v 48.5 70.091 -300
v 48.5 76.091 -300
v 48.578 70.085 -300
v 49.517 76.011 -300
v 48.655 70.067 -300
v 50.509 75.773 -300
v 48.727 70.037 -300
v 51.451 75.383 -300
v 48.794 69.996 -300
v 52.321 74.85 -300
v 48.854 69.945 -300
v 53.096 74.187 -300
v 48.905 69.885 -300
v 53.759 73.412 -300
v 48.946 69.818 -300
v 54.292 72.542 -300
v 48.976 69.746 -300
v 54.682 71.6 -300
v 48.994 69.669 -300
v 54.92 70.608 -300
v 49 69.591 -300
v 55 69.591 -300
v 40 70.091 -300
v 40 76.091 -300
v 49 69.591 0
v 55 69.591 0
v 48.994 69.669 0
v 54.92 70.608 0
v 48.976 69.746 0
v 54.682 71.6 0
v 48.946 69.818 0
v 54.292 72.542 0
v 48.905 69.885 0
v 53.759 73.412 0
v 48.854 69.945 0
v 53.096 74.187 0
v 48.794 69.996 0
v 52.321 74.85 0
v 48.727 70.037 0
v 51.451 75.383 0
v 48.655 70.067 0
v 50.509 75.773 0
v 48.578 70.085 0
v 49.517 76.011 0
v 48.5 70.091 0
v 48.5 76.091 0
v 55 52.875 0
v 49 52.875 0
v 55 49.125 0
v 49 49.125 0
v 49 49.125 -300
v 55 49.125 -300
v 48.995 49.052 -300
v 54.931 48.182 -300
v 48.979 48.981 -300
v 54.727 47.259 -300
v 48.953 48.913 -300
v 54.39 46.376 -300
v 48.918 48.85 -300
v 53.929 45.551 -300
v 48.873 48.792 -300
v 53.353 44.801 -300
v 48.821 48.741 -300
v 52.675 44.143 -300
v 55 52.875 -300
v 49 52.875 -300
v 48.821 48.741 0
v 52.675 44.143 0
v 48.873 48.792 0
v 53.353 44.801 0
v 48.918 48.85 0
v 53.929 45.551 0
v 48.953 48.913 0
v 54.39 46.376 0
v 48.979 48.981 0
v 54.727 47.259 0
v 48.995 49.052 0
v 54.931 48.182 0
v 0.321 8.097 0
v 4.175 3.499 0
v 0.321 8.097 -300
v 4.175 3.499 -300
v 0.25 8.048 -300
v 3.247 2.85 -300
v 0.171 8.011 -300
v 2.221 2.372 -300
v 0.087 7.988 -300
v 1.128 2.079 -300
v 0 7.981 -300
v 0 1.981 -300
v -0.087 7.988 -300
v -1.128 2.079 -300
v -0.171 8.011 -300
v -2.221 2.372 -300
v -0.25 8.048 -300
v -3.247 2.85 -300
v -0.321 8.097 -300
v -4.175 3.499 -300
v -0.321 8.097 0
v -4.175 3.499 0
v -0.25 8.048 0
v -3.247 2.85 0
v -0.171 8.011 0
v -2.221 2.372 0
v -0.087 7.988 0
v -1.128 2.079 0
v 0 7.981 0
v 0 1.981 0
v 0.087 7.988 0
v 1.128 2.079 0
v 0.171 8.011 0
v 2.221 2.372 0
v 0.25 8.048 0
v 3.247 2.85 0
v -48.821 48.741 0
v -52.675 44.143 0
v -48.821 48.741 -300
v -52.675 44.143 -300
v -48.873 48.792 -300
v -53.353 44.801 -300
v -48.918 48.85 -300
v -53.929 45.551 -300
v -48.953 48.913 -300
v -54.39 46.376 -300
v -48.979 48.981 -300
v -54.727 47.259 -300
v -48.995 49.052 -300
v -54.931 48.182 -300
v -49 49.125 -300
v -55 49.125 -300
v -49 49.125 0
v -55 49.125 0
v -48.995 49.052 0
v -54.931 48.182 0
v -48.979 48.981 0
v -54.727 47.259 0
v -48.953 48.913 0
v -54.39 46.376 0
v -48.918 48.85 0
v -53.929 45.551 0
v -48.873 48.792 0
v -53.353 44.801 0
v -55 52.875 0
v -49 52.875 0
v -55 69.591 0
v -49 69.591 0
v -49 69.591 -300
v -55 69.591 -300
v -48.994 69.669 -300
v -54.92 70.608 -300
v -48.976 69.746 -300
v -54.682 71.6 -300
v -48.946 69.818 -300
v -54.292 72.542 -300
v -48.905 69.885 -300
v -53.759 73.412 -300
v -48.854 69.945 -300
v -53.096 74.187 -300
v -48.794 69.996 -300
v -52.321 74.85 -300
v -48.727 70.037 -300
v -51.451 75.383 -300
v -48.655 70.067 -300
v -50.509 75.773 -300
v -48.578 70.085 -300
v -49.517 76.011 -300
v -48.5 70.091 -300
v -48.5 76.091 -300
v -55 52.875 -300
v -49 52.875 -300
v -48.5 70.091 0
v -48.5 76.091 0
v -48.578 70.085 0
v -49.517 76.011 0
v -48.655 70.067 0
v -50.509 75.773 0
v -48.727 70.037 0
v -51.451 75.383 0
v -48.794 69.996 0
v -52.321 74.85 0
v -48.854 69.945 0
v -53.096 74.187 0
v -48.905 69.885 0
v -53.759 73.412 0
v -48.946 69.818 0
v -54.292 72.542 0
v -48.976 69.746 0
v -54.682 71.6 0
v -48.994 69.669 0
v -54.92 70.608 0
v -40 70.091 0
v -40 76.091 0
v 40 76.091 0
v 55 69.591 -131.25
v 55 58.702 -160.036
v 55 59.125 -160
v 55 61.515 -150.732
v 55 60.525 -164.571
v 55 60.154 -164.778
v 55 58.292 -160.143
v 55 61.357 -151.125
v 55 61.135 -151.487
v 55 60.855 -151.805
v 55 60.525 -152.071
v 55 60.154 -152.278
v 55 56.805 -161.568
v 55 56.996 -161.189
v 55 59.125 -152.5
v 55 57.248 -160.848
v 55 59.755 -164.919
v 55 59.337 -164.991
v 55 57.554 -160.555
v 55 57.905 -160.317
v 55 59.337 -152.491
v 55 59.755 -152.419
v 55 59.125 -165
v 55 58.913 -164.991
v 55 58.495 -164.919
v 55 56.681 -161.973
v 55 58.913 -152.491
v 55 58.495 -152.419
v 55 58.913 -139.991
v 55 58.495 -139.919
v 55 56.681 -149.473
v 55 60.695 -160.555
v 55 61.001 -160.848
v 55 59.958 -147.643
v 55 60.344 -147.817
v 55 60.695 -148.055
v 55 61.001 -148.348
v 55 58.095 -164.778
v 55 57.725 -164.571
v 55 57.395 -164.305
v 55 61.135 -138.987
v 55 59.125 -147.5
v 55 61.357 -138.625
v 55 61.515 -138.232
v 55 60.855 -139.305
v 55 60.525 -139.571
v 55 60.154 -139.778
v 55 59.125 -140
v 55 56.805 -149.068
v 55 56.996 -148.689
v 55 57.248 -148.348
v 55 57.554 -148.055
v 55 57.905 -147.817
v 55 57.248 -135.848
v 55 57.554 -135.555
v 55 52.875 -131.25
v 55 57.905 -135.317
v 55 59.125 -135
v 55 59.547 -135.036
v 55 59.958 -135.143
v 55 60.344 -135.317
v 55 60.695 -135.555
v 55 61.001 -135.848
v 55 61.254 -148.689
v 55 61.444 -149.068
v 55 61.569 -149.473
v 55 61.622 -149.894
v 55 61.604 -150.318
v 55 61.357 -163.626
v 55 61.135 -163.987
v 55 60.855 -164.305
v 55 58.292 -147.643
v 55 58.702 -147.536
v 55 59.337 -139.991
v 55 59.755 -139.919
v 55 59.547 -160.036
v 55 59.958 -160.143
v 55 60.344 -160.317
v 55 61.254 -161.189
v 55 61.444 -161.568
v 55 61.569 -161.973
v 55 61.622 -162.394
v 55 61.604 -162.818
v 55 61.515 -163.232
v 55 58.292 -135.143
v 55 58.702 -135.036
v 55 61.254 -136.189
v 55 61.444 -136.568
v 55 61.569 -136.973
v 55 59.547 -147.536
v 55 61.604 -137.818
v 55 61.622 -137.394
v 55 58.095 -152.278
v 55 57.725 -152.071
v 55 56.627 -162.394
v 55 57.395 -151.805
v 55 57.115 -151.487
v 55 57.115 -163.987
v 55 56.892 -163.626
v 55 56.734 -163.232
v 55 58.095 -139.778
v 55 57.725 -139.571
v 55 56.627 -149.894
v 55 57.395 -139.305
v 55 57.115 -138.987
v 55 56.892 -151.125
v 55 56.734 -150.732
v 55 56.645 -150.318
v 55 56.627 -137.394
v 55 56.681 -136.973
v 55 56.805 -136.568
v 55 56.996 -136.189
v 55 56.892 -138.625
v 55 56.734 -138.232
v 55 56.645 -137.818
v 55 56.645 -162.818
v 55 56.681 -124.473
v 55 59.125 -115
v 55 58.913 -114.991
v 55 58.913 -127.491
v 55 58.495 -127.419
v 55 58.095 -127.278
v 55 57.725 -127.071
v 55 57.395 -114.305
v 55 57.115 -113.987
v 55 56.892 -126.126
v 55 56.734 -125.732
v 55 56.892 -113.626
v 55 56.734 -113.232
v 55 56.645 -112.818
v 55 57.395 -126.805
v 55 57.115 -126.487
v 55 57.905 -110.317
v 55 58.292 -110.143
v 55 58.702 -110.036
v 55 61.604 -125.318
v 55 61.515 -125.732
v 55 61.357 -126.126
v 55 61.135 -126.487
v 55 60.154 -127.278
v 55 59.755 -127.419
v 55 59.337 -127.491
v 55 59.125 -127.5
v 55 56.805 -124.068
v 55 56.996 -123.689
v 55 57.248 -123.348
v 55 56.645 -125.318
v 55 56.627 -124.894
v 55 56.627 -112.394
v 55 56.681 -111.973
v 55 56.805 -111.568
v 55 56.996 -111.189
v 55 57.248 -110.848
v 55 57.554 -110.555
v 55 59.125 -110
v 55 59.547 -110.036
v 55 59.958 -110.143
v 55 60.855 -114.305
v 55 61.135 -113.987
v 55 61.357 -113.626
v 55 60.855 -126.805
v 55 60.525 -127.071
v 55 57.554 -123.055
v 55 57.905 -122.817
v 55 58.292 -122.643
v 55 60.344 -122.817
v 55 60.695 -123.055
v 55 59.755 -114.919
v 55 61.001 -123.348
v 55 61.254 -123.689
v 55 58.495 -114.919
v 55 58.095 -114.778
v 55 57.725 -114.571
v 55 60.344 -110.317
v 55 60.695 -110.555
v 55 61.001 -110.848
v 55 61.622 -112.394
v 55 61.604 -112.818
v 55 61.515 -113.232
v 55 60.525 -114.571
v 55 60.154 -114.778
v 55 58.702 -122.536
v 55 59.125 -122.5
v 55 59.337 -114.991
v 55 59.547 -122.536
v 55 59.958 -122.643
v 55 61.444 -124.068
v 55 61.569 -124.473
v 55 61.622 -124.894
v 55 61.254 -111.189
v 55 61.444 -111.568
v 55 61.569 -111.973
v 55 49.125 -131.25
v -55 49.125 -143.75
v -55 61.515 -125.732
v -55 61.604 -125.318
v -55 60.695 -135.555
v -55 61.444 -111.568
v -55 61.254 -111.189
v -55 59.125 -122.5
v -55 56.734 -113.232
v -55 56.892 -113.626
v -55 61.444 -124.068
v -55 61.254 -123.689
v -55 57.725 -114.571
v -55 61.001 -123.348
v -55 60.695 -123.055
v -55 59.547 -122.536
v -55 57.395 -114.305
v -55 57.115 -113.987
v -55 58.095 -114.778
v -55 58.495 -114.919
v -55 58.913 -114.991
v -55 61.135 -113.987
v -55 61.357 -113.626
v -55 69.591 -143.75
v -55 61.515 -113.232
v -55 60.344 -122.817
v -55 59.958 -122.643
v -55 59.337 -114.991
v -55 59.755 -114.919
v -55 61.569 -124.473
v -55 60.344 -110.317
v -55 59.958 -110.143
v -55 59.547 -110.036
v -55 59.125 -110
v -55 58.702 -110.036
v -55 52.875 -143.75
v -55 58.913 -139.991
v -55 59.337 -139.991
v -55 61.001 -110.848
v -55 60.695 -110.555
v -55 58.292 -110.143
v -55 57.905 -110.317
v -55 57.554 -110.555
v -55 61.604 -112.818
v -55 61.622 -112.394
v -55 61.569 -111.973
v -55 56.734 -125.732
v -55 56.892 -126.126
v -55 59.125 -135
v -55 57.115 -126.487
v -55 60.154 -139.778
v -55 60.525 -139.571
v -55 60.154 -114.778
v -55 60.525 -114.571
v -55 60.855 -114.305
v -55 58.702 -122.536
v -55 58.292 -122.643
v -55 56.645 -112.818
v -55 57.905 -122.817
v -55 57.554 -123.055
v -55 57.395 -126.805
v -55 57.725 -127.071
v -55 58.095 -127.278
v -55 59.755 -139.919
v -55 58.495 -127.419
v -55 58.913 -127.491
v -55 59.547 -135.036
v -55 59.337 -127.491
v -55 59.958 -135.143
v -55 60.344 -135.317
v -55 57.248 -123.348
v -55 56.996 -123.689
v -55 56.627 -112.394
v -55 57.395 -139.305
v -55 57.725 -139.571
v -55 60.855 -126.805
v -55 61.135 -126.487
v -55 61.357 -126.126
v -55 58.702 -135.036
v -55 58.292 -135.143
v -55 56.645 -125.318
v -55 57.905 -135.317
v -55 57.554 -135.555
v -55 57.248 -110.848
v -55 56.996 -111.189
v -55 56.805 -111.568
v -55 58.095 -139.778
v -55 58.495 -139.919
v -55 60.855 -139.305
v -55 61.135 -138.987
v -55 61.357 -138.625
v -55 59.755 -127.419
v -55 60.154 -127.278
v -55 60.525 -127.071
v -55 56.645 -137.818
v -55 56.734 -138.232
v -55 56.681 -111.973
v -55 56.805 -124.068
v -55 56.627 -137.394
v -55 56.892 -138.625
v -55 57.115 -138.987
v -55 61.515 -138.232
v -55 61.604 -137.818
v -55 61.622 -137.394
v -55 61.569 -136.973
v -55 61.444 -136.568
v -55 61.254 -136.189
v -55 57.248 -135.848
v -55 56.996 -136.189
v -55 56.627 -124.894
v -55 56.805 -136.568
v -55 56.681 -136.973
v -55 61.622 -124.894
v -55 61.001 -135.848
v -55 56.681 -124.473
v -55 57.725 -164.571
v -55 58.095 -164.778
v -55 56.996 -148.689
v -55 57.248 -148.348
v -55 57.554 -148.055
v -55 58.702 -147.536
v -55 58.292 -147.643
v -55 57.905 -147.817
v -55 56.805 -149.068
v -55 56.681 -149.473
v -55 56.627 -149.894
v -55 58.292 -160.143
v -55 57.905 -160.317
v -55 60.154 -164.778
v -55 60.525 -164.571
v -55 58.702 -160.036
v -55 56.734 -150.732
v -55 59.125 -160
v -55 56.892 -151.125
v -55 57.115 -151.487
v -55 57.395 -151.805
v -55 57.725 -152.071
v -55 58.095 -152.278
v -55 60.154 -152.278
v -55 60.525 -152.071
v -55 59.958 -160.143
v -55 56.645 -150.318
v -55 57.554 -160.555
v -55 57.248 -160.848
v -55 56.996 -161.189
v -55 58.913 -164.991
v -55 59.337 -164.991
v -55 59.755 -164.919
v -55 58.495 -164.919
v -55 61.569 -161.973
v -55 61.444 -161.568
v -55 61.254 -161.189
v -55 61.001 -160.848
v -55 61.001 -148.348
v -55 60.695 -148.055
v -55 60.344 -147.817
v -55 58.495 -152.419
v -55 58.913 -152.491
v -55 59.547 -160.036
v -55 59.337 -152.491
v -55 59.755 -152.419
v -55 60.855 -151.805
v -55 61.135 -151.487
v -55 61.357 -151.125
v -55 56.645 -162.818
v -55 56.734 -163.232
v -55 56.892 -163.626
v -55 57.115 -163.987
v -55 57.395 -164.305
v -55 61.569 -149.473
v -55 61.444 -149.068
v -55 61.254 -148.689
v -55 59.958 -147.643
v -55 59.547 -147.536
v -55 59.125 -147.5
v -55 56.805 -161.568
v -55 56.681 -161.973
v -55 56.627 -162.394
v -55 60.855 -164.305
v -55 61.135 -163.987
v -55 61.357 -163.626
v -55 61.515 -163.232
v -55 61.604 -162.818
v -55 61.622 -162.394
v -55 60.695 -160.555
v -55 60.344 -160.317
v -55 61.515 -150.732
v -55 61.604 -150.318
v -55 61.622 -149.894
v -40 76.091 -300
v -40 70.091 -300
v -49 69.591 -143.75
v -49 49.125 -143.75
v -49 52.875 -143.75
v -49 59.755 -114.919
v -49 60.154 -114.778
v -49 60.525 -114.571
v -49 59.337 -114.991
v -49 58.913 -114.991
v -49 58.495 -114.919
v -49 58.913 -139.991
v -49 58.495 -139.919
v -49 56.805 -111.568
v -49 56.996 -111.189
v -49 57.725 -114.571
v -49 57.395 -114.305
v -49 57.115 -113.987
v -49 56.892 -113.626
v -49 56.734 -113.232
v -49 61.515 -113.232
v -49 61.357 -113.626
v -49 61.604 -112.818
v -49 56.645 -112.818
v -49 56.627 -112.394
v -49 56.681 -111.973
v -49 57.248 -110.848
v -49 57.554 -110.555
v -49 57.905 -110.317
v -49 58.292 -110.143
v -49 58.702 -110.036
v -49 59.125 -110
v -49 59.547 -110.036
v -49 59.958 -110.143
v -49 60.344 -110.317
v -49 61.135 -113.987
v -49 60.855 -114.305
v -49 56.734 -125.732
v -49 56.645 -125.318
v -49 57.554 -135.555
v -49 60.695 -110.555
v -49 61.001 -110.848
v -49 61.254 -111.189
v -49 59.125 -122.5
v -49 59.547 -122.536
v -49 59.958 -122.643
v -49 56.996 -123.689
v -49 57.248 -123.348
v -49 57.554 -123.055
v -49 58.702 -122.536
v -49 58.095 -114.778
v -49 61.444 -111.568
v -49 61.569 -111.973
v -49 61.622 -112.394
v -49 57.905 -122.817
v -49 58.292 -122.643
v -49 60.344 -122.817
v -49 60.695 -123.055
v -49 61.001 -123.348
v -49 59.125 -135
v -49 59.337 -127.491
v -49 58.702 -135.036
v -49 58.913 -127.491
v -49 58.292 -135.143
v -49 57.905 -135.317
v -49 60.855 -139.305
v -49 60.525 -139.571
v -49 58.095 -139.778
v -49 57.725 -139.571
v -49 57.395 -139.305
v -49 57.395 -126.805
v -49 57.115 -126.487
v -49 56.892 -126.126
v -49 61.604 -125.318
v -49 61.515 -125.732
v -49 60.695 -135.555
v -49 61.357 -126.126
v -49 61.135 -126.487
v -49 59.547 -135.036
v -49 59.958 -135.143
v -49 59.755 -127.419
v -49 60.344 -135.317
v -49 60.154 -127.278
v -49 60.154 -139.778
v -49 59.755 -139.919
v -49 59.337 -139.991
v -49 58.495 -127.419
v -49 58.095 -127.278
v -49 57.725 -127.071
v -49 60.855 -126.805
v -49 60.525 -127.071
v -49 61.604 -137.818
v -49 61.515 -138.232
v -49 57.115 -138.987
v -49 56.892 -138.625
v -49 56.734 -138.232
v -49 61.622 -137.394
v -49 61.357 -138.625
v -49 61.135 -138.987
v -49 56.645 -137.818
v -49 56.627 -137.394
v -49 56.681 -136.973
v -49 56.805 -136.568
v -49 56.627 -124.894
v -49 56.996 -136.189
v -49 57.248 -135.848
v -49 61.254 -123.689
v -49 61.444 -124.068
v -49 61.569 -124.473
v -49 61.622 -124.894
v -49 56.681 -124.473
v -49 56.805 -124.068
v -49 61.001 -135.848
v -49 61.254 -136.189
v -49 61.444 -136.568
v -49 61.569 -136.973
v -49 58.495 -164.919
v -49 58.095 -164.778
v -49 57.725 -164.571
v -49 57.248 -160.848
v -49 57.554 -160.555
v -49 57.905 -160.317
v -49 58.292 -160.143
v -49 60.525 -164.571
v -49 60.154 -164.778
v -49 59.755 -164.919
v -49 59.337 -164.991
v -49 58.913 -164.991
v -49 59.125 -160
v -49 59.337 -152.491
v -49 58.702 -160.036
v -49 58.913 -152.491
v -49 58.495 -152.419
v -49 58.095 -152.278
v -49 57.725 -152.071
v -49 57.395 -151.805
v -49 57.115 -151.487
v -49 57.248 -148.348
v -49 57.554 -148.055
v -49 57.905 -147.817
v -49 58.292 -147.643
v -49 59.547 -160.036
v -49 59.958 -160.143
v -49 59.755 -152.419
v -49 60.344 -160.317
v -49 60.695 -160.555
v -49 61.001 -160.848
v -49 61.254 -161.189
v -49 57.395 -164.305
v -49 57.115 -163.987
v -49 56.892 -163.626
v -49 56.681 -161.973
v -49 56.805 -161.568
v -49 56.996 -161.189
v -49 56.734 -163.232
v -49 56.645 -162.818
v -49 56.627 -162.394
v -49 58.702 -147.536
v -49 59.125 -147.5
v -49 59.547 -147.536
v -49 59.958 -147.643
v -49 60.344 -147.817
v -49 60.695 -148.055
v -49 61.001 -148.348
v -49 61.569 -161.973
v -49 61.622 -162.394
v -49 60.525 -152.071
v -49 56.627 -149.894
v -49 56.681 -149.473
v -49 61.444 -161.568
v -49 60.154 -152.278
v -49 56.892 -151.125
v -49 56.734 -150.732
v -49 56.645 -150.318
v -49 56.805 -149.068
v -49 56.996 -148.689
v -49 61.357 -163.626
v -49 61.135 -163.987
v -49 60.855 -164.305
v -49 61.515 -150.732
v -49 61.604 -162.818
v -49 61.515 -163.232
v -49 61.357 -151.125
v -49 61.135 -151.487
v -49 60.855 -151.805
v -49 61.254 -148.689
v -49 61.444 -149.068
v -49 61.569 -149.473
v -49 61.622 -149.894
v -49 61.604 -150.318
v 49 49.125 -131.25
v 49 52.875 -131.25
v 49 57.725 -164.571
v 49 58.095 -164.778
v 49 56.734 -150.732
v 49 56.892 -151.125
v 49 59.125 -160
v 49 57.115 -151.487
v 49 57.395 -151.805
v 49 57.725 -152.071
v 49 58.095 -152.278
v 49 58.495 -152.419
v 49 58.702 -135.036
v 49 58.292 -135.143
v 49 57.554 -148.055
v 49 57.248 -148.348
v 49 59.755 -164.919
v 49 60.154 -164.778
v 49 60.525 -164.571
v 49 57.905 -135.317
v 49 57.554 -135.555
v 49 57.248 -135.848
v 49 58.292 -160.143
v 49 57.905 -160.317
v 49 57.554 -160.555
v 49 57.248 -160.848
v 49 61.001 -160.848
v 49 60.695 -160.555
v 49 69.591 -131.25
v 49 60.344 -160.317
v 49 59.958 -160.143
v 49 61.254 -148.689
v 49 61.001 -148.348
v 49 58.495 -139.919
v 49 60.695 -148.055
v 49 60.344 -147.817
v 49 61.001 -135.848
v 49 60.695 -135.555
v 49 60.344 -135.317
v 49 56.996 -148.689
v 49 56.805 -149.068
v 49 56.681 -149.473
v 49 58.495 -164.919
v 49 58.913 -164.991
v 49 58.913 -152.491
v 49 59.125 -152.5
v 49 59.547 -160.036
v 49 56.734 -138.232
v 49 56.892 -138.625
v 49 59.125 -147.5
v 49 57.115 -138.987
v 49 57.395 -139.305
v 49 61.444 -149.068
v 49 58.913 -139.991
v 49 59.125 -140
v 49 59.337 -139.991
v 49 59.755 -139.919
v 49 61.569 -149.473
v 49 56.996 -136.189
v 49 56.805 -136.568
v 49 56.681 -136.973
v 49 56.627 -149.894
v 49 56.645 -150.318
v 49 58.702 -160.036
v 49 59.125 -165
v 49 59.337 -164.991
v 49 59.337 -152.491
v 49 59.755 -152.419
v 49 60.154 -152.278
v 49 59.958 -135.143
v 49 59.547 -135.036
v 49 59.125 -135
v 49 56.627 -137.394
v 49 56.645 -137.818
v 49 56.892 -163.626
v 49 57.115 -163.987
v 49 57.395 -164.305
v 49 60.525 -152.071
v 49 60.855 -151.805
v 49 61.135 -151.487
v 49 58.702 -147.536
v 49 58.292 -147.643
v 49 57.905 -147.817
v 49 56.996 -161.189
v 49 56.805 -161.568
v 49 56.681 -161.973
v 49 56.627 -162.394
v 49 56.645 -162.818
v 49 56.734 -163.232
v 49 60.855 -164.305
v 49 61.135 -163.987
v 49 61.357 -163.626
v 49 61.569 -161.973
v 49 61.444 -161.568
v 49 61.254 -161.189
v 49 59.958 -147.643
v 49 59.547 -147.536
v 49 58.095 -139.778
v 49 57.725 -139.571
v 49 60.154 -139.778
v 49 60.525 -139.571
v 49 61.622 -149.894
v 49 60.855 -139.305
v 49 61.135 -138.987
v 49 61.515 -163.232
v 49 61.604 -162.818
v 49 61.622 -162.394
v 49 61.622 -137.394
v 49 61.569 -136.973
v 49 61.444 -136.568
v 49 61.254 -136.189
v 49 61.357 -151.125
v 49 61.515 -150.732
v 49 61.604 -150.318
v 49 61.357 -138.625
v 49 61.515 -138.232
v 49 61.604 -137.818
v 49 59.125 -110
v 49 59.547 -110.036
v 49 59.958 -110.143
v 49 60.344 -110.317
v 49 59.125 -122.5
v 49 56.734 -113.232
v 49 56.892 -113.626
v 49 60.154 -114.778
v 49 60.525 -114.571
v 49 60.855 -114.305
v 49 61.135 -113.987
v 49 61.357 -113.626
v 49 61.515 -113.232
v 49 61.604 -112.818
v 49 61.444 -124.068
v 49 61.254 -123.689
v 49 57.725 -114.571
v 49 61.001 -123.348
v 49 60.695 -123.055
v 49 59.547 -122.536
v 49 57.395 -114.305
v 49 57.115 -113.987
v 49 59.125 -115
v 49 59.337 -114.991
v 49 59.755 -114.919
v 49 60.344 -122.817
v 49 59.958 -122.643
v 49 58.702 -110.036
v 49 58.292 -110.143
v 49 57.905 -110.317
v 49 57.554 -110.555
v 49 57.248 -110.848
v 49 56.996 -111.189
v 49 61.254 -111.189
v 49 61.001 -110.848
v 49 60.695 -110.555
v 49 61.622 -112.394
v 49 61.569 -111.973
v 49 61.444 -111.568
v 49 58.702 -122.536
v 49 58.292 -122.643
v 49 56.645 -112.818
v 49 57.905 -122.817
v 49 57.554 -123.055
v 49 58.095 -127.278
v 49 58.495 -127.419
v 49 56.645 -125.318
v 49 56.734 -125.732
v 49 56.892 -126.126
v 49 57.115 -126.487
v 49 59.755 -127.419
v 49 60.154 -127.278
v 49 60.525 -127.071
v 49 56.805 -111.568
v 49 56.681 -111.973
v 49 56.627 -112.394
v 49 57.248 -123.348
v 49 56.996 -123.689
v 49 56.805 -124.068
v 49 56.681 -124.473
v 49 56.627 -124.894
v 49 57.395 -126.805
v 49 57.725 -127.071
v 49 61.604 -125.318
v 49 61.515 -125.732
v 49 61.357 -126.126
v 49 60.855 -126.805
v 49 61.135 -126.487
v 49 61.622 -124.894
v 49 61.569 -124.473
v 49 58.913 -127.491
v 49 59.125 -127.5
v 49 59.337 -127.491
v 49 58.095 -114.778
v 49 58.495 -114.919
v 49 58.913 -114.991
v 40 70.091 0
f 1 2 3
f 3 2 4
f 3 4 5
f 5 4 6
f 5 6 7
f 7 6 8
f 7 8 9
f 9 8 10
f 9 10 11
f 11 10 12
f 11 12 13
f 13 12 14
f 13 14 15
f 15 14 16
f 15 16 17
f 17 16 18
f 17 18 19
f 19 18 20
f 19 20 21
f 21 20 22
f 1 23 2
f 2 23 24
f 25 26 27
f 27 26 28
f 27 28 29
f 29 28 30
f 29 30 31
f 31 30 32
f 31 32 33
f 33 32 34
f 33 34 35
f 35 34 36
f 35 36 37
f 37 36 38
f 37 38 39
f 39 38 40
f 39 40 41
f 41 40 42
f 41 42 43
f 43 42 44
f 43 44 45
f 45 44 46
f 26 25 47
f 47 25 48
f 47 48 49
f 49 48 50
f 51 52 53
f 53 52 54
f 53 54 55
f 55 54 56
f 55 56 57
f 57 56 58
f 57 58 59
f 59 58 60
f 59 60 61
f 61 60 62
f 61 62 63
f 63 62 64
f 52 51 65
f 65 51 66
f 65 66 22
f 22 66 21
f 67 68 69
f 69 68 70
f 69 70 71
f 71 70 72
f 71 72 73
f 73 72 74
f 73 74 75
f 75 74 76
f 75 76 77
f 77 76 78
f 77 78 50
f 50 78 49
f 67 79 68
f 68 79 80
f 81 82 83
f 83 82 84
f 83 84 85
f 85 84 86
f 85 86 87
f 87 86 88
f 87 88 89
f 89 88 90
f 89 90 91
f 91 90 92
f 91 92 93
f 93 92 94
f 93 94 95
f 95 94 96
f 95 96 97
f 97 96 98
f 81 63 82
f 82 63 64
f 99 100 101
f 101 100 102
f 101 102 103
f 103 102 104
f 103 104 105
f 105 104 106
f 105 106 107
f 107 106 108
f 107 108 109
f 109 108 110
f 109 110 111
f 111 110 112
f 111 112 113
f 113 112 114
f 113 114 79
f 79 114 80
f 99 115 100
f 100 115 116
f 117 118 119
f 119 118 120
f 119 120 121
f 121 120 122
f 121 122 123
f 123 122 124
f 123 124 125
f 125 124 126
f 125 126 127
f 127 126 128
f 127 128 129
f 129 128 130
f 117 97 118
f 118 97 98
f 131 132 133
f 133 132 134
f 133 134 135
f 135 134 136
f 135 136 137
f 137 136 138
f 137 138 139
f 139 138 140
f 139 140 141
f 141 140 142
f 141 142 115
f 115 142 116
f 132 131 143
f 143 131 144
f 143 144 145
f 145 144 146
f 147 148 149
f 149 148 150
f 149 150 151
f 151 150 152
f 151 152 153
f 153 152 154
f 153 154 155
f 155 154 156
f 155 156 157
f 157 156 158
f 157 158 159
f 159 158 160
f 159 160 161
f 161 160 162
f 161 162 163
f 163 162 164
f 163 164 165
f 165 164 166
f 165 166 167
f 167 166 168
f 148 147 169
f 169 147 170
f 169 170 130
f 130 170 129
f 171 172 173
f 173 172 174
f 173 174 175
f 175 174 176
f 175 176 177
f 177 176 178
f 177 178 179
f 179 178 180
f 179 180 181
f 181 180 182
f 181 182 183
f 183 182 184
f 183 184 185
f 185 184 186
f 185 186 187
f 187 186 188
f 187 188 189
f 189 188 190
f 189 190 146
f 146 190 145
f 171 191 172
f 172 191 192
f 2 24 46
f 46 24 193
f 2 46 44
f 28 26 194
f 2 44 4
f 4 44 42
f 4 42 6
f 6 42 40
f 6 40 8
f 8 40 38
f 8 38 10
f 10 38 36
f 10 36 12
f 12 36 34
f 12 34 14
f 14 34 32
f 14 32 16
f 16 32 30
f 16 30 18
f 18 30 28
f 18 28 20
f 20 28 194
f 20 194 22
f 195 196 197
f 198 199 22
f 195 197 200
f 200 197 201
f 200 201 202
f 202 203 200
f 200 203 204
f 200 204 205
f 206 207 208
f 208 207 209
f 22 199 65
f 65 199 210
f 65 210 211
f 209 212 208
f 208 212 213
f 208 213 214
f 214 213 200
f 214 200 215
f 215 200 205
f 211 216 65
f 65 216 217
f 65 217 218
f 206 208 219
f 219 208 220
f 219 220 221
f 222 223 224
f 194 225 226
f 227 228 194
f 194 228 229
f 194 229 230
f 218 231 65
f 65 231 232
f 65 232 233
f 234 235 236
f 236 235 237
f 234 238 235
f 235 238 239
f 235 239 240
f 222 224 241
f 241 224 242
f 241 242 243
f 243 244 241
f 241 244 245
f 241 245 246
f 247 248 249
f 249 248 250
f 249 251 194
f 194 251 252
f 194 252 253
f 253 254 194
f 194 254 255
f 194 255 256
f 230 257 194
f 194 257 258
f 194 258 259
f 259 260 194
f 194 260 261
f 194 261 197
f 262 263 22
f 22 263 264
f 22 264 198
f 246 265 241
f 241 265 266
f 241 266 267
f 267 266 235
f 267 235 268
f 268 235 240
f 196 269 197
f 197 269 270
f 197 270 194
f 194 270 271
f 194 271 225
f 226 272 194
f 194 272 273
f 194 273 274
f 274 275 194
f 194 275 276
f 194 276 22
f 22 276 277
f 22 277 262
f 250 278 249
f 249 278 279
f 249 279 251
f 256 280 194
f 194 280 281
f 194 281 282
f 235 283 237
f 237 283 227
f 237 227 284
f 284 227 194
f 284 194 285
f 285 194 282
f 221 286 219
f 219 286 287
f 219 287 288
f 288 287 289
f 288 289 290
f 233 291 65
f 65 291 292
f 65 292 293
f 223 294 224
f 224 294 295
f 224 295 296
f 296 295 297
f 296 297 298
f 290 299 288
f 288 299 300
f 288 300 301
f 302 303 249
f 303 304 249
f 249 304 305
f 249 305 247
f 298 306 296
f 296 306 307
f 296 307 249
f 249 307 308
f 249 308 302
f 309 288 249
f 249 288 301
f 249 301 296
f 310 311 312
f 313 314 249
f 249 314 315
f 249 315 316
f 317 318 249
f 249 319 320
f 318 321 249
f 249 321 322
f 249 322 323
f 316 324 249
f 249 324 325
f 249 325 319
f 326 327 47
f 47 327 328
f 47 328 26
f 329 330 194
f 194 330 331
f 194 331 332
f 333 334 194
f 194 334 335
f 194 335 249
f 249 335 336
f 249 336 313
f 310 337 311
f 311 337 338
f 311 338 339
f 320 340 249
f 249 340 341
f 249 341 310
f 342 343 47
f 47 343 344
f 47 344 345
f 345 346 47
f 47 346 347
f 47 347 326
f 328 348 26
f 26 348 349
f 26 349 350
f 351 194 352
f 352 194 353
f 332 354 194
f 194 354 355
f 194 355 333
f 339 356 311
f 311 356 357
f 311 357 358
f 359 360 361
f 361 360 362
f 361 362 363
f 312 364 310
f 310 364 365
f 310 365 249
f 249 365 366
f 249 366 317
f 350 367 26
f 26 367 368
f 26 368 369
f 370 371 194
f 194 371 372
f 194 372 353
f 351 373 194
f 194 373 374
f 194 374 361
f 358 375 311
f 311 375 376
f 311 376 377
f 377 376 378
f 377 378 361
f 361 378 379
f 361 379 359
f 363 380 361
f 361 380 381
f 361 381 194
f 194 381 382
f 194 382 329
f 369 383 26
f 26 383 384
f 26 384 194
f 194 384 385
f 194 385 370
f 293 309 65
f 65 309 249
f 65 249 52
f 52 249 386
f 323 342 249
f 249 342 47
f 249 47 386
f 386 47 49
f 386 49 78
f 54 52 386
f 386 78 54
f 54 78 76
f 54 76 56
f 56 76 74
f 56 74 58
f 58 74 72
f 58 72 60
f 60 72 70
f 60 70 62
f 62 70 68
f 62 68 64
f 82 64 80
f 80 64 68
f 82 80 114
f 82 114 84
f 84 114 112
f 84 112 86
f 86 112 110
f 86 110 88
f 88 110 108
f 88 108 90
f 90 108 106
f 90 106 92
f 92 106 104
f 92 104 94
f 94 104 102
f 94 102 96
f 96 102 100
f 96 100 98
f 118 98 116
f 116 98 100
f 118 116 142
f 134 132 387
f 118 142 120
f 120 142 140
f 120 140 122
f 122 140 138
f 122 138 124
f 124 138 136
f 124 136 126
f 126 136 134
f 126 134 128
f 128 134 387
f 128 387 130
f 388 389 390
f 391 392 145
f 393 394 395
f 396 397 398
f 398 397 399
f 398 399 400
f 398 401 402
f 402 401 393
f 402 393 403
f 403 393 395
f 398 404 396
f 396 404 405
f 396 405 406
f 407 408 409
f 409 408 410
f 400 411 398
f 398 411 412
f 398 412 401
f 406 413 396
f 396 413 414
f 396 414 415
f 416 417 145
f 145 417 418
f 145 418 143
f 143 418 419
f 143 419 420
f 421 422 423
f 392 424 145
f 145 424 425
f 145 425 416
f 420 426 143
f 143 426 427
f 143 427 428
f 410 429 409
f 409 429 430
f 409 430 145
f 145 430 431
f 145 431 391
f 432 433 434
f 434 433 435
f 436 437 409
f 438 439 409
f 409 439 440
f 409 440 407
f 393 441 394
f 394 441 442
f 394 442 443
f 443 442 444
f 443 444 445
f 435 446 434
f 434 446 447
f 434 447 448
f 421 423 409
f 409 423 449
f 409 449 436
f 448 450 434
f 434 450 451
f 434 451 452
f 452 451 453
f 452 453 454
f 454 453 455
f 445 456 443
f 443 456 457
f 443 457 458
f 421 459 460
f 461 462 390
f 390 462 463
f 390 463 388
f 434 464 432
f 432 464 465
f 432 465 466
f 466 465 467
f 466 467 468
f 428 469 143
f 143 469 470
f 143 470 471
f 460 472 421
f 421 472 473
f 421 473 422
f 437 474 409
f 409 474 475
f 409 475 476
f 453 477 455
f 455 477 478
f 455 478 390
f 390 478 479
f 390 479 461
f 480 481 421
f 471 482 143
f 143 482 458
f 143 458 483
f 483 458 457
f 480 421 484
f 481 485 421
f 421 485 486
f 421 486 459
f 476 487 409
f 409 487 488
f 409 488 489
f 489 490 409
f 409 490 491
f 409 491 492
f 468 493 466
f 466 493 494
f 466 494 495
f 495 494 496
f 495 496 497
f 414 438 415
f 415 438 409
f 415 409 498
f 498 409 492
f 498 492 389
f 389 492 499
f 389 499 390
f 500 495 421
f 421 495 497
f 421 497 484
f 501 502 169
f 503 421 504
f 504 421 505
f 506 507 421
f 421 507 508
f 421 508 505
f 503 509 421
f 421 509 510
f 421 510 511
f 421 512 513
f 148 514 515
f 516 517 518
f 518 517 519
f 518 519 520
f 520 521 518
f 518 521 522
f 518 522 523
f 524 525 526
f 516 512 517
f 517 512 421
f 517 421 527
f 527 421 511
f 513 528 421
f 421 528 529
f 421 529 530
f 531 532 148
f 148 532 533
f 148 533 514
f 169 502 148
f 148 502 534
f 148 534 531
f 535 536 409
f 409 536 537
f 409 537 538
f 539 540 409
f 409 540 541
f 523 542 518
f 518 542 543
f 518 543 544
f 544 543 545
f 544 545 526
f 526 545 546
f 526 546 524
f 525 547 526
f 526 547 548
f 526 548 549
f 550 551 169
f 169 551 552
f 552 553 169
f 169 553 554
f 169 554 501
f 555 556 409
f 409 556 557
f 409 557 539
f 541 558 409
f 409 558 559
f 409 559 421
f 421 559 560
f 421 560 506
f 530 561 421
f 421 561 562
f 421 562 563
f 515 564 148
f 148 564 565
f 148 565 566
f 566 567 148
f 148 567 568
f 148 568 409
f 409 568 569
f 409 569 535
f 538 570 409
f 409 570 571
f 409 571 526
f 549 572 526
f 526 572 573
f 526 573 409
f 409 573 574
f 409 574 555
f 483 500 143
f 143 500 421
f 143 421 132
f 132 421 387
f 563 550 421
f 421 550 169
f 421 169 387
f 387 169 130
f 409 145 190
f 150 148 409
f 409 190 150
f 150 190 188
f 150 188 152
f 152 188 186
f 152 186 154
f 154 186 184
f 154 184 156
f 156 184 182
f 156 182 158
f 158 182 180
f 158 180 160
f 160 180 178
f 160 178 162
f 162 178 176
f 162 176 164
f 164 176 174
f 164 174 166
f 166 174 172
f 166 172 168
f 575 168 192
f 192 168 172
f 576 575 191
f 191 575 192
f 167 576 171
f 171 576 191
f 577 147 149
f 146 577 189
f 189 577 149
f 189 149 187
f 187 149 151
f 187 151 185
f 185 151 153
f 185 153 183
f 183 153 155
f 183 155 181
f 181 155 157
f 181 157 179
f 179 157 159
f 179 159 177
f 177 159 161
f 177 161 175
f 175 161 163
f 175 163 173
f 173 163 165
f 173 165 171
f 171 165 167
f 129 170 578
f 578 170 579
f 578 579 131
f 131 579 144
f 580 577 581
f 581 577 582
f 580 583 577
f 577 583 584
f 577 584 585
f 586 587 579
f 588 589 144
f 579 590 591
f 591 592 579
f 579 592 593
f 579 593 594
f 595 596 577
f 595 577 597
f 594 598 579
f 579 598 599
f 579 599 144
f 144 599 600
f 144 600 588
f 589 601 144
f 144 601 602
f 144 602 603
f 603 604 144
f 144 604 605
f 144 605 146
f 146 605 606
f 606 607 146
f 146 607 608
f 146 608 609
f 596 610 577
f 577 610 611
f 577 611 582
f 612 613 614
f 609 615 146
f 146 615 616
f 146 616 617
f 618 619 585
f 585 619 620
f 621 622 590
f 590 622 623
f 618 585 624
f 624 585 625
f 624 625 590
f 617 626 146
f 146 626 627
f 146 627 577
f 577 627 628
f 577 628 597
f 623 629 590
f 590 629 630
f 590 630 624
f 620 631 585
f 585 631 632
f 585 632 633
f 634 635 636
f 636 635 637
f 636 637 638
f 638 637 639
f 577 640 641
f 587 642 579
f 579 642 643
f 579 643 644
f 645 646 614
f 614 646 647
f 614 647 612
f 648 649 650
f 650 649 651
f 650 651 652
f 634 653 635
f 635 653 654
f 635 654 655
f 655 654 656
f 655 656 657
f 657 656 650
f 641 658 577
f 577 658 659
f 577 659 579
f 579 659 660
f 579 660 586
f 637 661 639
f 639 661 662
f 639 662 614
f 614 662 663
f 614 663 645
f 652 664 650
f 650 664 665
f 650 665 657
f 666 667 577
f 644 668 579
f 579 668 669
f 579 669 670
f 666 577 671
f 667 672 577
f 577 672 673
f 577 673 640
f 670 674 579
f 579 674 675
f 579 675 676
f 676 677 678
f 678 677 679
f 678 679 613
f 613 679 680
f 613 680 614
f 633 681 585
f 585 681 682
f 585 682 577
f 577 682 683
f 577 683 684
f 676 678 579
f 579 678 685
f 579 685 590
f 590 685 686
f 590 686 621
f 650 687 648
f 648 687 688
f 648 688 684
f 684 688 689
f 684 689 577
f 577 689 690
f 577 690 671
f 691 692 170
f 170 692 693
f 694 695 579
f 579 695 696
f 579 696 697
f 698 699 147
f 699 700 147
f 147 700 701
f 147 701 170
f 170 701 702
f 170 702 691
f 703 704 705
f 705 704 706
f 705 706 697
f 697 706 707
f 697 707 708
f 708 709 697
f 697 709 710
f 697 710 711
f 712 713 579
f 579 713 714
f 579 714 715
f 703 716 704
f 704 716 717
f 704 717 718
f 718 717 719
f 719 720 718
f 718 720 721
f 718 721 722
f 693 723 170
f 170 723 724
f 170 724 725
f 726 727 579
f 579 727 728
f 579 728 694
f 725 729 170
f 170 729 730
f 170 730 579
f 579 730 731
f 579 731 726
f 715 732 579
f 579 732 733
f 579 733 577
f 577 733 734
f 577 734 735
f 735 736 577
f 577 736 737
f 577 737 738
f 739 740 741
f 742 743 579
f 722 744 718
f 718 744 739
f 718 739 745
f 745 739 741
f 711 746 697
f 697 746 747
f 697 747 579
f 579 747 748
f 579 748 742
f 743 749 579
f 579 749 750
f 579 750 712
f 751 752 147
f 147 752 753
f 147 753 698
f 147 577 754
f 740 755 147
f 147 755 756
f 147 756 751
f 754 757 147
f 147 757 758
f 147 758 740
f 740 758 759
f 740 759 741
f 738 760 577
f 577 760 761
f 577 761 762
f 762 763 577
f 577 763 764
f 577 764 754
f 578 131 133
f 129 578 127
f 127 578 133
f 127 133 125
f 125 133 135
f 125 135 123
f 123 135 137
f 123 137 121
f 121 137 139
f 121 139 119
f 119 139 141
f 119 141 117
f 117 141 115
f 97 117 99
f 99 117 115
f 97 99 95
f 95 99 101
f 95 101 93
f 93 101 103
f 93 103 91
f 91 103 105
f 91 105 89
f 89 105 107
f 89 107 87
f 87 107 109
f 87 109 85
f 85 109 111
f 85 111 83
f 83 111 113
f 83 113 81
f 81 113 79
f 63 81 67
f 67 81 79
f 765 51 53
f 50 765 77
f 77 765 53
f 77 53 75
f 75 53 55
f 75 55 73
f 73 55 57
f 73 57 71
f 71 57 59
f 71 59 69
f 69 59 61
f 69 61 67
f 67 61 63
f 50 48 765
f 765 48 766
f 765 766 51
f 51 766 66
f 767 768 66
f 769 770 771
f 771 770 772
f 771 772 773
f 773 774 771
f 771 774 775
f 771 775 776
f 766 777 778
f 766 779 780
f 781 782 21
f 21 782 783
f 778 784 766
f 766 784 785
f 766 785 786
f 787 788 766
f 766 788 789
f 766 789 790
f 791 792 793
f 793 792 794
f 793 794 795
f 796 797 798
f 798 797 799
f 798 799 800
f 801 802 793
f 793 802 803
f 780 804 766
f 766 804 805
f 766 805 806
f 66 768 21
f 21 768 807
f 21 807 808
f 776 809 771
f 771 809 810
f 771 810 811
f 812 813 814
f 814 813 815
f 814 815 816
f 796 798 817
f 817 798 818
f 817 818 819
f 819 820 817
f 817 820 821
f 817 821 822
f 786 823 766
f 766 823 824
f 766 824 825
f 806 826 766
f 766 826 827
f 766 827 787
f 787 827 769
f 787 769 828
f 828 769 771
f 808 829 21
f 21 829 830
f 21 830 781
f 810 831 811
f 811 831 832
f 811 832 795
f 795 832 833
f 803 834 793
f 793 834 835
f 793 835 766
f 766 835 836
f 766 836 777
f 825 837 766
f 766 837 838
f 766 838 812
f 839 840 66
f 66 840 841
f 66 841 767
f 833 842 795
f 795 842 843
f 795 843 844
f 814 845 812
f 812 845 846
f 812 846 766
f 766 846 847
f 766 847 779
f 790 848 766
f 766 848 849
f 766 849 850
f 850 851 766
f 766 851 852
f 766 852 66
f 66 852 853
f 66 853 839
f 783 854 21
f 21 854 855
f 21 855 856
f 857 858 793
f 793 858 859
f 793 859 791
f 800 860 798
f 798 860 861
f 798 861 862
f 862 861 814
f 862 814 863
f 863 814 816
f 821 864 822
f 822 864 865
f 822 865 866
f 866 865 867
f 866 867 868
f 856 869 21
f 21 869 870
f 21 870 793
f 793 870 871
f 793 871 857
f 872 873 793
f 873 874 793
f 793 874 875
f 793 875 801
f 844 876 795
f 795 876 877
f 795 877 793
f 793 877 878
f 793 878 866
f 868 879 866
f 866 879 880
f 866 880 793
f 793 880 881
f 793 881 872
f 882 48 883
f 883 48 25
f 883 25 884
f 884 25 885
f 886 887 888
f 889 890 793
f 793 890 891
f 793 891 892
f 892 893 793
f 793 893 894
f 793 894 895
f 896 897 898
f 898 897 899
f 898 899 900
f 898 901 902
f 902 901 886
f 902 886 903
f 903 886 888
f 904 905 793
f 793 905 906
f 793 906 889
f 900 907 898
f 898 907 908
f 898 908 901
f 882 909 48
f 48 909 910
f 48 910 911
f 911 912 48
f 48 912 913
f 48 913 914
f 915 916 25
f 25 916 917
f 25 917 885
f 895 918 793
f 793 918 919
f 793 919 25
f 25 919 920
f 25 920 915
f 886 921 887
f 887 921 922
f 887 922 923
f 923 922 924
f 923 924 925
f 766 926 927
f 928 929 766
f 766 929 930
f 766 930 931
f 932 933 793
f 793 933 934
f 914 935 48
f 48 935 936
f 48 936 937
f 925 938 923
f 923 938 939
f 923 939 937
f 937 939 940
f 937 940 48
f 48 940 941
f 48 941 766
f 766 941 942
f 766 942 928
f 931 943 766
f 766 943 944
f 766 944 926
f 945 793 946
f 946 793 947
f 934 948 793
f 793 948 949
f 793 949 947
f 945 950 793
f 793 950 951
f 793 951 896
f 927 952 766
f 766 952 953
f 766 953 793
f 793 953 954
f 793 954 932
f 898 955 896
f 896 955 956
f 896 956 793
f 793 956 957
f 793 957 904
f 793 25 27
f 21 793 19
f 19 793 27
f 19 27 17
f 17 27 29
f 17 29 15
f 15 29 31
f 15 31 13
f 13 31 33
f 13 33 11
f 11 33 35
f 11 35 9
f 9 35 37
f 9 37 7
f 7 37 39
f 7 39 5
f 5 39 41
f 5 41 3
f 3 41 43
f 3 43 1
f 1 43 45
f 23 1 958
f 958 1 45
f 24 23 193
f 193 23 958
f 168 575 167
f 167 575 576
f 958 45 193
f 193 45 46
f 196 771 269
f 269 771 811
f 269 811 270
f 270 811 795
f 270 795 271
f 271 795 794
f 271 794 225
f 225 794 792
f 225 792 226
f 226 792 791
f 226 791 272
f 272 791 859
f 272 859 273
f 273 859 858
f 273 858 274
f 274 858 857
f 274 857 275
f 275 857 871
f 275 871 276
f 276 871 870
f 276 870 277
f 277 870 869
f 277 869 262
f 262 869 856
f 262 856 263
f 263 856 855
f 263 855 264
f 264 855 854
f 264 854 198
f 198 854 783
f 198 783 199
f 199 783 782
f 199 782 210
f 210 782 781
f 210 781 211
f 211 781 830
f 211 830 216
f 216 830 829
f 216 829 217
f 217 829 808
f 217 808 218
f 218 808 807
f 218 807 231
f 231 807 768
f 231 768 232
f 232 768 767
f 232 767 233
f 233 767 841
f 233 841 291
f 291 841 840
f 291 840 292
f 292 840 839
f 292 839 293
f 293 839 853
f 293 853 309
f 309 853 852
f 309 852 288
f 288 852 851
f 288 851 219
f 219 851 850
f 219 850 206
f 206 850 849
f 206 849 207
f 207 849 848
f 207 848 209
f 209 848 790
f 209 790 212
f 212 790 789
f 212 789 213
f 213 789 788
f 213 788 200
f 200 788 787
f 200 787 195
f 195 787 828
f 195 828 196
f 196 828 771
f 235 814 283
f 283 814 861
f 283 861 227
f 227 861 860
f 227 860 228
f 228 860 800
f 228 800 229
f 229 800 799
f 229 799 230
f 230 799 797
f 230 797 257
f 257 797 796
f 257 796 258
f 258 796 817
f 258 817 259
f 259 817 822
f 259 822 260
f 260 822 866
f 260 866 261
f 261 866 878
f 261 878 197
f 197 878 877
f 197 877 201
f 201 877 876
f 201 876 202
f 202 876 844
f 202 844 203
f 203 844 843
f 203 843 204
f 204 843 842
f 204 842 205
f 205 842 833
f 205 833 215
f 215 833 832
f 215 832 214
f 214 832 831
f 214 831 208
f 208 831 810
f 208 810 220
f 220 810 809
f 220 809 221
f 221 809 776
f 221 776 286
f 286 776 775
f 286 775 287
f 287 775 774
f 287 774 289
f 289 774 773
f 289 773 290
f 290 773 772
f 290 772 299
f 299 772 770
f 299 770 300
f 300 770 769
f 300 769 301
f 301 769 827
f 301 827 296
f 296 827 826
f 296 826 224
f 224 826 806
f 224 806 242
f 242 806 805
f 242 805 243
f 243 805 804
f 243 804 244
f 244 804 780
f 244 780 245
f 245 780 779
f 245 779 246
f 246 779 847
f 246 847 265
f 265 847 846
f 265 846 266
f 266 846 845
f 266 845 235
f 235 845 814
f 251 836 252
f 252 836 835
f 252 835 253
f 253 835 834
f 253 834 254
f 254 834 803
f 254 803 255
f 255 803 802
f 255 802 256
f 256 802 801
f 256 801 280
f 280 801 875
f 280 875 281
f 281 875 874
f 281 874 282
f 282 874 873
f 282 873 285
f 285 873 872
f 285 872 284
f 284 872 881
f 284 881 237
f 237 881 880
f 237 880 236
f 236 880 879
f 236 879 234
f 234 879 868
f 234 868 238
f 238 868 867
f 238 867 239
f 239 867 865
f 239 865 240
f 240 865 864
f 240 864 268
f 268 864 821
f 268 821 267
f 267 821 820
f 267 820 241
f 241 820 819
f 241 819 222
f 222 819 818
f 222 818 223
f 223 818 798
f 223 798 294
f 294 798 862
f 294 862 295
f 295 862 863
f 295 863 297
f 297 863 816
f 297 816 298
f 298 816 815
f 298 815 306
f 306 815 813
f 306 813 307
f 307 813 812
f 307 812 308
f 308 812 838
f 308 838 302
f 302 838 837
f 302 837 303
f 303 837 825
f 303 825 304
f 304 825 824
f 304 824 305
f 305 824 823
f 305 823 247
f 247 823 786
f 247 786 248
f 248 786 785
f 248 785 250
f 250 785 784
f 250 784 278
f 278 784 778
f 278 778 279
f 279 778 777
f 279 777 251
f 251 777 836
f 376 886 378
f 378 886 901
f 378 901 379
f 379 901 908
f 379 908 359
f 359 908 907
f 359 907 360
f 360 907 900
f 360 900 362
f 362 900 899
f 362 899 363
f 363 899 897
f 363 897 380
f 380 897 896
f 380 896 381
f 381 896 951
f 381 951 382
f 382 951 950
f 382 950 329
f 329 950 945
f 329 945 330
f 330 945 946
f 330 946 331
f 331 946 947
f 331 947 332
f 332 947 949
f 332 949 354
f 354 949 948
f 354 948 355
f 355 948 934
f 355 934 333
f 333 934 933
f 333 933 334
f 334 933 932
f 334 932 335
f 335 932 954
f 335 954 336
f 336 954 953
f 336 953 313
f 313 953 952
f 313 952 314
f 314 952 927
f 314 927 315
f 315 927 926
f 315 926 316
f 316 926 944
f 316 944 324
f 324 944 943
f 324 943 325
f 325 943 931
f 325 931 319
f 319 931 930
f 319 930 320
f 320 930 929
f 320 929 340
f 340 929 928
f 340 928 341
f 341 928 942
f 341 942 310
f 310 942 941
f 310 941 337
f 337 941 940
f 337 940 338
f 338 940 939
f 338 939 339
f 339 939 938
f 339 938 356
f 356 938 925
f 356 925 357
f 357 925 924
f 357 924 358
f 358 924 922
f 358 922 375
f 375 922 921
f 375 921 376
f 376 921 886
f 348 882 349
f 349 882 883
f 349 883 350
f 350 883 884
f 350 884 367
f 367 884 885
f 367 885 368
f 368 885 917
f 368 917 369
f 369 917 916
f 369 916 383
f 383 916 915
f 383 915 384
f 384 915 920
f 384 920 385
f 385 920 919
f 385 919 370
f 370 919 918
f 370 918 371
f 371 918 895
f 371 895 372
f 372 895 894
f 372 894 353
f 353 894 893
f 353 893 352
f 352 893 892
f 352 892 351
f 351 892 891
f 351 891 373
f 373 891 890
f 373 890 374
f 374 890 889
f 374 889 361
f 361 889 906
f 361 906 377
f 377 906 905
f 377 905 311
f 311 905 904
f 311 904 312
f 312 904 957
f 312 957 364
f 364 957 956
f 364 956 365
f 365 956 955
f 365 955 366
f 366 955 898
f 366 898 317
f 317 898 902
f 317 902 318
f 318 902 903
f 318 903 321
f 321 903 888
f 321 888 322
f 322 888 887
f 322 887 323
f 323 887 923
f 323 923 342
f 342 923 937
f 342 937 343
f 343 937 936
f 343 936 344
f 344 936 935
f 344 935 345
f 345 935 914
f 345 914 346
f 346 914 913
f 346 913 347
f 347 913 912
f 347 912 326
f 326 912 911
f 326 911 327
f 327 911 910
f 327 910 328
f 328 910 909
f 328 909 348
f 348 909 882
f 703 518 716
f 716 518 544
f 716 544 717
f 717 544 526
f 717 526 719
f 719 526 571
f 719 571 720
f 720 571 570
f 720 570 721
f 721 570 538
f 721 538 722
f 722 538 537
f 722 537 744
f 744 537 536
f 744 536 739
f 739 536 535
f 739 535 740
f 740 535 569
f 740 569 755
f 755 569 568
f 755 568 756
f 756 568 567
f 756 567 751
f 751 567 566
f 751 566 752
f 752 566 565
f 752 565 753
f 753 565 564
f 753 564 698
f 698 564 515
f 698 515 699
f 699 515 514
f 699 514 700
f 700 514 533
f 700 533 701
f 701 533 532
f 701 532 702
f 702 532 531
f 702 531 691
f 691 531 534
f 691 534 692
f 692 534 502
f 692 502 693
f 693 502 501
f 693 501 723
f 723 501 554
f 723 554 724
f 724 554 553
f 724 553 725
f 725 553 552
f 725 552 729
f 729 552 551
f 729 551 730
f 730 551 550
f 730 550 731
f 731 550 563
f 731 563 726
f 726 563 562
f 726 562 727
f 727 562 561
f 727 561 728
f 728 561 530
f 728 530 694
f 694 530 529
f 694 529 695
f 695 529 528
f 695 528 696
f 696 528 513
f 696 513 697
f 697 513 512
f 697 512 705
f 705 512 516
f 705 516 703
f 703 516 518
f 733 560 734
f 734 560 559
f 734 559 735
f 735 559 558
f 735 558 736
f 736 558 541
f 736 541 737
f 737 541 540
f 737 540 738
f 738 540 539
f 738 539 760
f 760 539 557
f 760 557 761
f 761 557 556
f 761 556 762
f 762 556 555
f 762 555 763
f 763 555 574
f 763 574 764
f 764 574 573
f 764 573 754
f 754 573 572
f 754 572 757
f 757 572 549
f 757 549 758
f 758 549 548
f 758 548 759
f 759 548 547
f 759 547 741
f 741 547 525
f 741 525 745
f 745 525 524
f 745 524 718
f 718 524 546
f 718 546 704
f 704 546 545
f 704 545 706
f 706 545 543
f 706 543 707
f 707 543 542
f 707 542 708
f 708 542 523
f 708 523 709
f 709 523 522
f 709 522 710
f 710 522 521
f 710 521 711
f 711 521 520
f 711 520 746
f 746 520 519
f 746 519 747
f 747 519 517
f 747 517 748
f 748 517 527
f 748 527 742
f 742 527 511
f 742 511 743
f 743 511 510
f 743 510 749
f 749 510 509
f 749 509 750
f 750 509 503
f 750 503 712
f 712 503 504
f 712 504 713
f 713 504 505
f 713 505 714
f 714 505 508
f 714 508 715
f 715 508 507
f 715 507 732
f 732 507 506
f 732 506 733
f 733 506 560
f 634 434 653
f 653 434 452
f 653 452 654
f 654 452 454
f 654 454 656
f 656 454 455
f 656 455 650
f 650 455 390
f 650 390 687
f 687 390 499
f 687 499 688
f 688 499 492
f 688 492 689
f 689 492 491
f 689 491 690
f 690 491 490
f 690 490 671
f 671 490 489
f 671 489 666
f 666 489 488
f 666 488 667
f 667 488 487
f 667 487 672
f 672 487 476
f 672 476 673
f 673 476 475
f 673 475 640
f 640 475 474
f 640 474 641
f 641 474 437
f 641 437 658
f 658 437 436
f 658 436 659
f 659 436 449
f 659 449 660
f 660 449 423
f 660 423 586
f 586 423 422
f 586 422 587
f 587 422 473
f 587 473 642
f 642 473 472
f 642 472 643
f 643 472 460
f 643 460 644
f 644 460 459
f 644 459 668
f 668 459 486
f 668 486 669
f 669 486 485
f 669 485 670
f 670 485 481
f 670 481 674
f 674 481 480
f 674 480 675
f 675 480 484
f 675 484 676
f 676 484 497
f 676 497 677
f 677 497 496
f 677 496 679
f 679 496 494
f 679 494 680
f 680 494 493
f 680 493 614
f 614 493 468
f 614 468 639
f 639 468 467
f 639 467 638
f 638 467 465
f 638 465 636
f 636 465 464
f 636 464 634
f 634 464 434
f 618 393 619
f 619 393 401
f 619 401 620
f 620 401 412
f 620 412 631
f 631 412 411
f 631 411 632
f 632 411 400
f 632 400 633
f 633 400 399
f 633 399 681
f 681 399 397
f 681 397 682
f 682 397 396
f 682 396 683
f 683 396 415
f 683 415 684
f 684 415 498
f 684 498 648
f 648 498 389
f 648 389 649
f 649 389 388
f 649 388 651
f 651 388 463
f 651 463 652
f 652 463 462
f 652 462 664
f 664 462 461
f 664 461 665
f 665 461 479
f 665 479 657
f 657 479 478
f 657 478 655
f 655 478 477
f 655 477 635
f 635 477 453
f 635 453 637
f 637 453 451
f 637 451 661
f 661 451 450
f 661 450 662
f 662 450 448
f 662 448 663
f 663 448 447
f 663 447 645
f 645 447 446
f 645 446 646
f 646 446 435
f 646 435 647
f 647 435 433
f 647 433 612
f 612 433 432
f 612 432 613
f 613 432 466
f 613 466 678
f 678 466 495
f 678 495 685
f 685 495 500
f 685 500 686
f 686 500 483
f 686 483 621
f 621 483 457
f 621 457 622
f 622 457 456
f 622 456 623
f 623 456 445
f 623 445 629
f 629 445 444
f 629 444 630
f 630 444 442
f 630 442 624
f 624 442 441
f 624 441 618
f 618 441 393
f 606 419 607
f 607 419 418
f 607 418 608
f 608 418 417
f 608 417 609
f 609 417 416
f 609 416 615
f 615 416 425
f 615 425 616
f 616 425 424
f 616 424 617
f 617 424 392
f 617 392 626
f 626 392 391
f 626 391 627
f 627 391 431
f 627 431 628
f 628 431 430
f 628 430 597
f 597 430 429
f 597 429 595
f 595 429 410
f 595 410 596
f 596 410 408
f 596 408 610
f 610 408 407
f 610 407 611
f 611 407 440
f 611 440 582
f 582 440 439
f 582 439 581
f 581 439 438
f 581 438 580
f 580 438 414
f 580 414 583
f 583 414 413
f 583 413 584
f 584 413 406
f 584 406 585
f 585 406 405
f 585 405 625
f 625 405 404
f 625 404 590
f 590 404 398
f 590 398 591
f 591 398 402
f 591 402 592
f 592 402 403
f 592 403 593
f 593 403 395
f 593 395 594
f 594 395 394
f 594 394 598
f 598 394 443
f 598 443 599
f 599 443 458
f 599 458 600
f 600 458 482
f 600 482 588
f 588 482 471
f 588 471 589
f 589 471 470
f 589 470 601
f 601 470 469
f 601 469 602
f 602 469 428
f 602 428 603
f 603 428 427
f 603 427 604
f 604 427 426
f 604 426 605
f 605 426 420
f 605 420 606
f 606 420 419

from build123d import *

# Parameters (mm, degrees)
BASE_FLANGE2_DEPTH = 300
SKETCH10_R         = 2.5
CUT_EXTRUDE1_DEPTH = 140


# Sheet-metal steps are written as plain solids
with BuildPart() as part:
    # Sketch1 → Base-Flange2 (new body)
    with BuildSketch(Plane.XY):
        with BuildLine():
            Line((-40, 76.091212948), (-48.5, 76.091212948))
            ThreePointArc((-48.5, 76.091212948), (-53.096194078, 74.187407026), (-55, 69.591212948))
            Line((-55, 69.591212948), (-55, 49.12471643))
            ThreePointArc((-55, 49.12471643), (-54.390131323, 46.375834295), (-52.67496831, 44.142785116))
            Line((-52.67496831, 44.142785116), (-4.17496831, 3.498715517))
            ThreePointArc((-4.17496831, 3.498715517), (0, 1.98064683), (4.17496831, 3.498715517))
            Line((4.17496831, 3.498715517), (52.67496831, 44.142785116))
            ThreePointArc((52.67496831, 44.142785116), (54.390131323, 46.375834295), (55, 49.12471643))
            Line((55, 49.12471643), (55, 69.591212948))
            ThreePointArc((55, 69.591212948), (53.096194078, 74.187407026), (48.5, 76.091212948))
            Line((48.5, 76.091212948), (40, 76.091212948))
            Line((40, 76.091212948), (40, 70.091212948))
            Line((40, 70.091212948), (48.5, 70.091212948))
            ThreePointArc((48.5, 70.091212948), (48.853553391, 69.944766339), (49, 69.591212948))
            Line((49, 69.591212948), (49, 49.12471643))
            ThreePointArc((49, 49.12471643), (48.953087025, 48.913263958), (48.821151408, 48.741490944))
            Line((48.821151408, 48.741490944), (0.321151408, 8.097421345))
            ThreePointArc((0.321151408, 8.097421345), (0, 7.98064683), (-0.321151408, 8.097421345))
            Line((-0.321151408, 8.097421345), (-48.821151408, 48.741490944))
            ThreePointArc((-48.821151408, 48.741490944), (-48.953087025, 48.913263958), (-49, 49.12471643))
            Line((-49, 49.12471643), (-49, 69.591212948))
            ThreePointArc((-49, 69.591212948), (-48.853553391, 69.944766339), (-48.5, 70.091212948))
            Line((-48.5, 70.091212948), (-40, 70.091212948))
            Line((-40, 70.091212948), (-40, 76.091212948))
        make_face()
    extrude(amount=-BASE_FLANGE2_DEPTH)

    # Sketch10 → Cut-Extrude1 (cut)
    with BuildSketch(Plane.ZY.offset(55)):
        with Locations(Location((-112.5, 59.12471643, 0), (0, 0, 180))):
            Circle(SKETCH10_R)
        with Locations(Location((-125, 59.12471643, 0), (0, 0, 180))):
            Circle(SKETCH10_R)
        with Locations(Location((-137.5, 59.12471643, 0), (0, 0, 180))):
            Circle(SKETCH10_R)
        with Locations(Location((-150, 59.12471643, 0), (0, 0, 180))):
            Circle(SKETCH10_R)
        with Locations(Location((-162.5, 59.12471643, 0), (0, 0, 180))):
            Circle(SKETCH10_R)
    extrude(amount=-CUT_EXTRUDE1_DEPTH, mode=Mode.SUBTRACT)


solid = part.part
